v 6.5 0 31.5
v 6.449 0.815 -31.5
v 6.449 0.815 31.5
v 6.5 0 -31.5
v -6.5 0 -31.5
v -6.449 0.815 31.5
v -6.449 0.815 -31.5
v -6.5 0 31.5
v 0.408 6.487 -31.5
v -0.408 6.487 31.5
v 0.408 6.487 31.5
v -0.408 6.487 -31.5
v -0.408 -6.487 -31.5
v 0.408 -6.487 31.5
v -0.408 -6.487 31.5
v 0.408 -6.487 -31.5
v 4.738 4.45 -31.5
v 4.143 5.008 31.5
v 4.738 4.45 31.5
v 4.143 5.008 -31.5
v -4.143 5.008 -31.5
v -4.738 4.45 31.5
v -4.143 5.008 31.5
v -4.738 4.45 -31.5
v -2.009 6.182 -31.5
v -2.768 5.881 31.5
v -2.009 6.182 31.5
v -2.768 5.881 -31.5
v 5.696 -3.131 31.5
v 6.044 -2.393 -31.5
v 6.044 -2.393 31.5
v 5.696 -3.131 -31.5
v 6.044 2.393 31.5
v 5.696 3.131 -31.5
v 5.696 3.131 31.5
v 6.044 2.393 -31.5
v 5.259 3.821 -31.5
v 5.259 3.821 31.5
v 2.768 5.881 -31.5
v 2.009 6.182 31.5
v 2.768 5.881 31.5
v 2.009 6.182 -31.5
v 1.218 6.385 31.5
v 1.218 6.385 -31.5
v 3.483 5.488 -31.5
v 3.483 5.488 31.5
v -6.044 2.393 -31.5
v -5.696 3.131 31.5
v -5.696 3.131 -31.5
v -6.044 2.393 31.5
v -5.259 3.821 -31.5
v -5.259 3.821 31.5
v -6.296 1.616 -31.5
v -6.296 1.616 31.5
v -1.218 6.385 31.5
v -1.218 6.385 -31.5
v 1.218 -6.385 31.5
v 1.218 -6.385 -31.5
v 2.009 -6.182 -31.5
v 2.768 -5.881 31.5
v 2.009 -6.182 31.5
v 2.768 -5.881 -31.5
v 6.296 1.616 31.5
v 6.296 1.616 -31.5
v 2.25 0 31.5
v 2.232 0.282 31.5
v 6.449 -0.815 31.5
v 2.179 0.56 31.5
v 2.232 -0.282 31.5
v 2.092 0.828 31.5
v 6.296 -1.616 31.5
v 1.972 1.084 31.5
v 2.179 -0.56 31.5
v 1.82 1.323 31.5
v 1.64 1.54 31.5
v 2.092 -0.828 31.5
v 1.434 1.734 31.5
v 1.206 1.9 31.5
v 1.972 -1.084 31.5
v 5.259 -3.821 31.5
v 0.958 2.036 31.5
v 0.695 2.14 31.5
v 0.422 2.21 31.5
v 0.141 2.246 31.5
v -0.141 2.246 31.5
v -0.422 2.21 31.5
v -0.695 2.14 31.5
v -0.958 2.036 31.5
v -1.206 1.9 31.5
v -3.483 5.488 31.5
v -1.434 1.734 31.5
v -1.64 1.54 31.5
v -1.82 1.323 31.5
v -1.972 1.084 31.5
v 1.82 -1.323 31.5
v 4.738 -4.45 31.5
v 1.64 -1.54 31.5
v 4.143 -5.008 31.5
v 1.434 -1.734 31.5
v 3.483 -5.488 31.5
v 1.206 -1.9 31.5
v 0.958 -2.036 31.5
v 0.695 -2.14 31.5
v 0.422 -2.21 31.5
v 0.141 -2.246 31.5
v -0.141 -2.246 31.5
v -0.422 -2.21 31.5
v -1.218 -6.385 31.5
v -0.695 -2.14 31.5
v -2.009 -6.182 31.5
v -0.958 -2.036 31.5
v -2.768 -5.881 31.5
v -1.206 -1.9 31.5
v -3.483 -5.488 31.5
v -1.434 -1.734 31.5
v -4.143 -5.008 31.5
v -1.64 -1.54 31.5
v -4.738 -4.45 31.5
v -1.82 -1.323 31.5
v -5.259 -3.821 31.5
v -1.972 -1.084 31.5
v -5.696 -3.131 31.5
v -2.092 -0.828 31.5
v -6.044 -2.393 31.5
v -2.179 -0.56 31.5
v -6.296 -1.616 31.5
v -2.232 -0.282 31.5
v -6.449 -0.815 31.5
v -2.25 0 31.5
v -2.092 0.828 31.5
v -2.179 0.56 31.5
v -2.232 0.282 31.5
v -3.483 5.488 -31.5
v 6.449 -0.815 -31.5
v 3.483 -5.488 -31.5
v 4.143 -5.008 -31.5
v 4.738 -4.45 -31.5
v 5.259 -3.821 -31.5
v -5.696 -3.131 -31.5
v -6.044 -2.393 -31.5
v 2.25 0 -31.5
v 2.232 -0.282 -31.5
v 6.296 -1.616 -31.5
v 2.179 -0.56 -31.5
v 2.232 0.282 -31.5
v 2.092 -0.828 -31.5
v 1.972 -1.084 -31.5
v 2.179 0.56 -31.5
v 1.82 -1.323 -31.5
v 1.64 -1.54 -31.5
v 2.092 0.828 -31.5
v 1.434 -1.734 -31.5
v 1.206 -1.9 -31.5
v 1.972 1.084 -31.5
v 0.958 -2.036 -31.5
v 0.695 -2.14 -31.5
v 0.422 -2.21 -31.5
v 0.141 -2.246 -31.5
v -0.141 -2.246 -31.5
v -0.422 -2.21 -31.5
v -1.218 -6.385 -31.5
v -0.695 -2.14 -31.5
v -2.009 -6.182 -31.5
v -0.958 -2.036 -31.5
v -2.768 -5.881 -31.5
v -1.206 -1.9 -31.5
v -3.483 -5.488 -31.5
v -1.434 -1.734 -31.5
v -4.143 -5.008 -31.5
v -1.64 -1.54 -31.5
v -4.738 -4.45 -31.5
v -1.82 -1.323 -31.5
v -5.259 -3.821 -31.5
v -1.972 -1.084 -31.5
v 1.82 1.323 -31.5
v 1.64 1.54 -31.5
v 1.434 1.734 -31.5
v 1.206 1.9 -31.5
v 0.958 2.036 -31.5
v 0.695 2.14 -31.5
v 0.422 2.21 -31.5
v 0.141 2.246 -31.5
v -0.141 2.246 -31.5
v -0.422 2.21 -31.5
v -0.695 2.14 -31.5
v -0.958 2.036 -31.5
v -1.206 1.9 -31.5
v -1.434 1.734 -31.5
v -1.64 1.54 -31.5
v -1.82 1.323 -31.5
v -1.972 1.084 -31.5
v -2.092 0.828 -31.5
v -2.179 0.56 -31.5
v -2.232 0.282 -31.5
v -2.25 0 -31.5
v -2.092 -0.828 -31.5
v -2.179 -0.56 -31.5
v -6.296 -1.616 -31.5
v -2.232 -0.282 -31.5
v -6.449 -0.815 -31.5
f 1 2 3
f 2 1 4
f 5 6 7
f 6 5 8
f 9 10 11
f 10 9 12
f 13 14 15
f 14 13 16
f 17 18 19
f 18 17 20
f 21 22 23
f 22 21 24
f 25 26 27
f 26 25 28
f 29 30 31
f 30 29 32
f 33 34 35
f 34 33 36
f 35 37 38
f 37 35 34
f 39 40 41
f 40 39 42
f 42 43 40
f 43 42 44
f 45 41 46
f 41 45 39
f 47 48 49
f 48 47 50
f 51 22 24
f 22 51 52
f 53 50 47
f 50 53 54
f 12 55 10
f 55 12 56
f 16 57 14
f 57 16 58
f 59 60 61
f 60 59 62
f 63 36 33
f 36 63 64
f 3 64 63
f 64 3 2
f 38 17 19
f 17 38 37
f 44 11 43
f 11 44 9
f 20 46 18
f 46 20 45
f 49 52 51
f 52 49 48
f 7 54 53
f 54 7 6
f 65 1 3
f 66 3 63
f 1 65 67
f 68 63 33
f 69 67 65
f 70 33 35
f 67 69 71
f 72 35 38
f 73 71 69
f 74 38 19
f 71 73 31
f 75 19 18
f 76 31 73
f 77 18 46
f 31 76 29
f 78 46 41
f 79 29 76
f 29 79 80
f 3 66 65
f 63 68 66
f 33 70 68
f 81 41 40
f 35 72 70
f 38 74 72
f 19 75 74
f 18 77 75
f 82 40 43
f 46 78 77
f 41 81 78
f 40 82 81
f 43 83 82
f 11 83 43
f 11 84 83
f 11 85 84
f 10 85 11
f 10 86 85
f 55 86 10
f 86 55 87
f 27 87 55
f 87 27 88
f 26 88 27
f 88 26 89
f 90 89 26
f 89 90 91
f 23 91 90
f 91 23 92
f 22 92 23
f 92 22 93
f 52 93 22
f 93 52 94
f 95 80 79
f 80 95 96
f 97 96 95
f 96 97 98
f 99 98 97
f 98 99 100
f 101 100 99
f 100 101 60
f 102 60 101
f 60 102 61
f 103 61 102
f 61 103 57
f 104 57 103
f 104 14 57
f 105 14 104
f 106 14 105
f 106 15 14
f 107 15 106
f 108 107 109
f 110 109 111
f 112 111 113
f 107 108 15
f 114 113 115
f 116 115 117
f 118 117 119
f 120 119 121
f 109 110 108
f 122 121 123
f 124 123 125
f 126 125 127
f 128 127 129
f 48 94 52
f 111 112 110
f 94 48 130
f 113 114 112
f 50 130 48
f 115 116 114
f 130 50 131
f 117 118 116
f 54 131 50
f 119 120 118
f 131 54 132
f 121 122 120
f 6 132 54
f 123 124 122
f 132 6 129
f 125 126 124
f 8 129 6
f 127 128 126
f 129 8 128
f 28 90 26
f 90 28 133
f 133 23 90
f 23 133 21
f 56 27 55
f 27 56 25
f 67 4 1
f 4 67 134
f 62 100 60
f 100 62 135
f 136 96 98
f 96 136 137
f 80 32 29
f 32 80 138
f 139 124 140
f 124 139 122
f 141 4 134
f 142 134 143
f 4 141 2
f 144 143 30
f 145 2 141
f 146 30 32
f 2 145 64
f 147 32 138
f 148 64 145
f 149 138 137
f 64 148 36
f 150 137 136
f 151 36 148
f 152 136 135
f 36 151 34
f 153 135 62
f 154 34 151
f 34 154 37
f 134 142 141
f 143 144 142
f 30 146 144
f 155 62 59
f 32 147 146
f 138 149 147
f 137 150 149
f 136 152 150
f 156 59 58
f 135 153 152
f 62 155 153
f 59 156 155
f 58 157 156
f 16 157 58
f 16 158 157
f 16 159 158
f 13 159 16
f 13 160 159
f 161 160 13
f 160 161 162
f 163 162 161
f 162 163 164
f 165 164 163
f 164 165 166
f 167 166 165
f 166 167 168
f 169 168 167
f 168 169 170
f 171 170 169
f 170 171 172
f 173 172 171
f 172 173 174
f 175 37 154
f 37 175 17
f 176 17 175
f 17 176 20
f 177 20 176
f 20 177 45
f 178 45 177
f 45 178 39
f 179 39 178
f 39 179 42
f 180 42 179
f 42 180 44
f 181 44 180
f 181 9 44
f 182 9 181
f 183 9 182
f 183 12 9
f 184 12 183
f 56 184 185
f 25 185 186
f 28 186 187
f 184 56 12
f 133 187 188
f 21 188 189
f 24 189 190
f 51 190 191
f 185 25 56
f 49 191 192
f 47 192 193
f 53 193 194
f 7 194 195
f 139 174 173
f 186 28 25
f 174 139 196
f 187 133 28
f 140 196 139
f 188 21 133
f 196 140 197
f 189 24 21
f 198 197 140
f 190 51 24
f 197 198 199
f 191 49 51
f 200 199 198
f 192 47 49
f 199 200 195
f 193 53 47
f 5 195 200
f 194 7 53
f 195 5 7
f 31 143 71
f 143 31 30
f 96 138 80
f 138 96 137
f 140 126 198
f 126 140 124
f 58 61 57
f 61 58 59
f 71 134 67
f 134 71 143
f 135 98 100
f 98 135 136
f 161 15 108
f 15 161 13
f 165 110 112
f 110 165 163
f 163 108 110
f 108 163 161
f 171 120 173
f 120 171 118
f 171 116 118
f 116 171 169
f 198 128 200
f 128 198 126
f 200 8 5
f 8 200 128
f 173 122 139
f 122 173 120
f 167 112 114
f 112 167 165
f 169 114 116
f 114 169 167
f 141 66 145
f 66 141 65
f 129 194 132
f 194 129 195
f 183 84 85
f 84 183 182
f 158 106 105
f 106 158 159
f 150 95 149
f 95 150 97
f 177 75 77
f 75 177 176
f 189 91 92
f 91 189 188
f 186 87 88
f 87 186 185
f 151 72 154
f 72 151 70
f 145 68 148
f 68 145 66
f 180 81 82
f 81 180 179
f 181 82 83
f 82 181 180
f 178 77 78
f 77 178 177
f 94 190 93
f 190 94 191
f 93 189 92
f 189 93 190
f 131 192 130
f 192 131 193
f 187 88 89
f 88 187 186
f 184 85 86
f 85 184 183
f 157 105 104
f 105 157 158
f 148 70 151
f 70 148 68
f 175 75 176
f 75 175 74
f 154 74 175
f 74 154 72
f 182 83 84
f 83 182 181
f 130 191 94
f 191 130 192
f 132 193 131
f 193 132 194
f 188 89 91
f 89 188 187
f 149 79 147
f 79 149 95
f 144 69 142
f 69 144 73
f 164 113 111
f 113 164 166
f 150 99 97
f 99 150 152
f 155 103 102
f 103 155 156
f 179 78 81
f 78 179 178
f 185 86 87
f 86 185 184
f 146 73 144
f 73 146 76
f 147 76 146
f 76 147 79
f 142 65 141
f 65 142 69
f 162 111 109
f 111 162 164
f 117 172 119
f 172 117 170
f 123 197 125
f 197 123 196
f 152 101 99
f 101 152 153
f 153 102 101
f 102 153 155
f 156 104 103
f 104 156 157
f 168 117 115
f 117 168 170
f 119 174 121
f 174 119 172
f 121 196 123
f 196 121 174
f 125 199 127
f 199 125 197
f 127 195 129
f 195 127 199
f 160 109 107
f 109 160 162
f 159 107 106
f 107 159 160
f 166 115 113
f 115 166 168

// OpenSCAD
$fn = 50;


difference() {
	union() {
		translate(v = [0, 0, -31.5000000000]) {
			cylinder(h = 63, r = 6.5000000000);
		}
	}
	union() {
		translate(v = [0, 0, -100.0000000000]) {
			cylinder(h = 200, r = 2.2500000000);
		}
	}
}
